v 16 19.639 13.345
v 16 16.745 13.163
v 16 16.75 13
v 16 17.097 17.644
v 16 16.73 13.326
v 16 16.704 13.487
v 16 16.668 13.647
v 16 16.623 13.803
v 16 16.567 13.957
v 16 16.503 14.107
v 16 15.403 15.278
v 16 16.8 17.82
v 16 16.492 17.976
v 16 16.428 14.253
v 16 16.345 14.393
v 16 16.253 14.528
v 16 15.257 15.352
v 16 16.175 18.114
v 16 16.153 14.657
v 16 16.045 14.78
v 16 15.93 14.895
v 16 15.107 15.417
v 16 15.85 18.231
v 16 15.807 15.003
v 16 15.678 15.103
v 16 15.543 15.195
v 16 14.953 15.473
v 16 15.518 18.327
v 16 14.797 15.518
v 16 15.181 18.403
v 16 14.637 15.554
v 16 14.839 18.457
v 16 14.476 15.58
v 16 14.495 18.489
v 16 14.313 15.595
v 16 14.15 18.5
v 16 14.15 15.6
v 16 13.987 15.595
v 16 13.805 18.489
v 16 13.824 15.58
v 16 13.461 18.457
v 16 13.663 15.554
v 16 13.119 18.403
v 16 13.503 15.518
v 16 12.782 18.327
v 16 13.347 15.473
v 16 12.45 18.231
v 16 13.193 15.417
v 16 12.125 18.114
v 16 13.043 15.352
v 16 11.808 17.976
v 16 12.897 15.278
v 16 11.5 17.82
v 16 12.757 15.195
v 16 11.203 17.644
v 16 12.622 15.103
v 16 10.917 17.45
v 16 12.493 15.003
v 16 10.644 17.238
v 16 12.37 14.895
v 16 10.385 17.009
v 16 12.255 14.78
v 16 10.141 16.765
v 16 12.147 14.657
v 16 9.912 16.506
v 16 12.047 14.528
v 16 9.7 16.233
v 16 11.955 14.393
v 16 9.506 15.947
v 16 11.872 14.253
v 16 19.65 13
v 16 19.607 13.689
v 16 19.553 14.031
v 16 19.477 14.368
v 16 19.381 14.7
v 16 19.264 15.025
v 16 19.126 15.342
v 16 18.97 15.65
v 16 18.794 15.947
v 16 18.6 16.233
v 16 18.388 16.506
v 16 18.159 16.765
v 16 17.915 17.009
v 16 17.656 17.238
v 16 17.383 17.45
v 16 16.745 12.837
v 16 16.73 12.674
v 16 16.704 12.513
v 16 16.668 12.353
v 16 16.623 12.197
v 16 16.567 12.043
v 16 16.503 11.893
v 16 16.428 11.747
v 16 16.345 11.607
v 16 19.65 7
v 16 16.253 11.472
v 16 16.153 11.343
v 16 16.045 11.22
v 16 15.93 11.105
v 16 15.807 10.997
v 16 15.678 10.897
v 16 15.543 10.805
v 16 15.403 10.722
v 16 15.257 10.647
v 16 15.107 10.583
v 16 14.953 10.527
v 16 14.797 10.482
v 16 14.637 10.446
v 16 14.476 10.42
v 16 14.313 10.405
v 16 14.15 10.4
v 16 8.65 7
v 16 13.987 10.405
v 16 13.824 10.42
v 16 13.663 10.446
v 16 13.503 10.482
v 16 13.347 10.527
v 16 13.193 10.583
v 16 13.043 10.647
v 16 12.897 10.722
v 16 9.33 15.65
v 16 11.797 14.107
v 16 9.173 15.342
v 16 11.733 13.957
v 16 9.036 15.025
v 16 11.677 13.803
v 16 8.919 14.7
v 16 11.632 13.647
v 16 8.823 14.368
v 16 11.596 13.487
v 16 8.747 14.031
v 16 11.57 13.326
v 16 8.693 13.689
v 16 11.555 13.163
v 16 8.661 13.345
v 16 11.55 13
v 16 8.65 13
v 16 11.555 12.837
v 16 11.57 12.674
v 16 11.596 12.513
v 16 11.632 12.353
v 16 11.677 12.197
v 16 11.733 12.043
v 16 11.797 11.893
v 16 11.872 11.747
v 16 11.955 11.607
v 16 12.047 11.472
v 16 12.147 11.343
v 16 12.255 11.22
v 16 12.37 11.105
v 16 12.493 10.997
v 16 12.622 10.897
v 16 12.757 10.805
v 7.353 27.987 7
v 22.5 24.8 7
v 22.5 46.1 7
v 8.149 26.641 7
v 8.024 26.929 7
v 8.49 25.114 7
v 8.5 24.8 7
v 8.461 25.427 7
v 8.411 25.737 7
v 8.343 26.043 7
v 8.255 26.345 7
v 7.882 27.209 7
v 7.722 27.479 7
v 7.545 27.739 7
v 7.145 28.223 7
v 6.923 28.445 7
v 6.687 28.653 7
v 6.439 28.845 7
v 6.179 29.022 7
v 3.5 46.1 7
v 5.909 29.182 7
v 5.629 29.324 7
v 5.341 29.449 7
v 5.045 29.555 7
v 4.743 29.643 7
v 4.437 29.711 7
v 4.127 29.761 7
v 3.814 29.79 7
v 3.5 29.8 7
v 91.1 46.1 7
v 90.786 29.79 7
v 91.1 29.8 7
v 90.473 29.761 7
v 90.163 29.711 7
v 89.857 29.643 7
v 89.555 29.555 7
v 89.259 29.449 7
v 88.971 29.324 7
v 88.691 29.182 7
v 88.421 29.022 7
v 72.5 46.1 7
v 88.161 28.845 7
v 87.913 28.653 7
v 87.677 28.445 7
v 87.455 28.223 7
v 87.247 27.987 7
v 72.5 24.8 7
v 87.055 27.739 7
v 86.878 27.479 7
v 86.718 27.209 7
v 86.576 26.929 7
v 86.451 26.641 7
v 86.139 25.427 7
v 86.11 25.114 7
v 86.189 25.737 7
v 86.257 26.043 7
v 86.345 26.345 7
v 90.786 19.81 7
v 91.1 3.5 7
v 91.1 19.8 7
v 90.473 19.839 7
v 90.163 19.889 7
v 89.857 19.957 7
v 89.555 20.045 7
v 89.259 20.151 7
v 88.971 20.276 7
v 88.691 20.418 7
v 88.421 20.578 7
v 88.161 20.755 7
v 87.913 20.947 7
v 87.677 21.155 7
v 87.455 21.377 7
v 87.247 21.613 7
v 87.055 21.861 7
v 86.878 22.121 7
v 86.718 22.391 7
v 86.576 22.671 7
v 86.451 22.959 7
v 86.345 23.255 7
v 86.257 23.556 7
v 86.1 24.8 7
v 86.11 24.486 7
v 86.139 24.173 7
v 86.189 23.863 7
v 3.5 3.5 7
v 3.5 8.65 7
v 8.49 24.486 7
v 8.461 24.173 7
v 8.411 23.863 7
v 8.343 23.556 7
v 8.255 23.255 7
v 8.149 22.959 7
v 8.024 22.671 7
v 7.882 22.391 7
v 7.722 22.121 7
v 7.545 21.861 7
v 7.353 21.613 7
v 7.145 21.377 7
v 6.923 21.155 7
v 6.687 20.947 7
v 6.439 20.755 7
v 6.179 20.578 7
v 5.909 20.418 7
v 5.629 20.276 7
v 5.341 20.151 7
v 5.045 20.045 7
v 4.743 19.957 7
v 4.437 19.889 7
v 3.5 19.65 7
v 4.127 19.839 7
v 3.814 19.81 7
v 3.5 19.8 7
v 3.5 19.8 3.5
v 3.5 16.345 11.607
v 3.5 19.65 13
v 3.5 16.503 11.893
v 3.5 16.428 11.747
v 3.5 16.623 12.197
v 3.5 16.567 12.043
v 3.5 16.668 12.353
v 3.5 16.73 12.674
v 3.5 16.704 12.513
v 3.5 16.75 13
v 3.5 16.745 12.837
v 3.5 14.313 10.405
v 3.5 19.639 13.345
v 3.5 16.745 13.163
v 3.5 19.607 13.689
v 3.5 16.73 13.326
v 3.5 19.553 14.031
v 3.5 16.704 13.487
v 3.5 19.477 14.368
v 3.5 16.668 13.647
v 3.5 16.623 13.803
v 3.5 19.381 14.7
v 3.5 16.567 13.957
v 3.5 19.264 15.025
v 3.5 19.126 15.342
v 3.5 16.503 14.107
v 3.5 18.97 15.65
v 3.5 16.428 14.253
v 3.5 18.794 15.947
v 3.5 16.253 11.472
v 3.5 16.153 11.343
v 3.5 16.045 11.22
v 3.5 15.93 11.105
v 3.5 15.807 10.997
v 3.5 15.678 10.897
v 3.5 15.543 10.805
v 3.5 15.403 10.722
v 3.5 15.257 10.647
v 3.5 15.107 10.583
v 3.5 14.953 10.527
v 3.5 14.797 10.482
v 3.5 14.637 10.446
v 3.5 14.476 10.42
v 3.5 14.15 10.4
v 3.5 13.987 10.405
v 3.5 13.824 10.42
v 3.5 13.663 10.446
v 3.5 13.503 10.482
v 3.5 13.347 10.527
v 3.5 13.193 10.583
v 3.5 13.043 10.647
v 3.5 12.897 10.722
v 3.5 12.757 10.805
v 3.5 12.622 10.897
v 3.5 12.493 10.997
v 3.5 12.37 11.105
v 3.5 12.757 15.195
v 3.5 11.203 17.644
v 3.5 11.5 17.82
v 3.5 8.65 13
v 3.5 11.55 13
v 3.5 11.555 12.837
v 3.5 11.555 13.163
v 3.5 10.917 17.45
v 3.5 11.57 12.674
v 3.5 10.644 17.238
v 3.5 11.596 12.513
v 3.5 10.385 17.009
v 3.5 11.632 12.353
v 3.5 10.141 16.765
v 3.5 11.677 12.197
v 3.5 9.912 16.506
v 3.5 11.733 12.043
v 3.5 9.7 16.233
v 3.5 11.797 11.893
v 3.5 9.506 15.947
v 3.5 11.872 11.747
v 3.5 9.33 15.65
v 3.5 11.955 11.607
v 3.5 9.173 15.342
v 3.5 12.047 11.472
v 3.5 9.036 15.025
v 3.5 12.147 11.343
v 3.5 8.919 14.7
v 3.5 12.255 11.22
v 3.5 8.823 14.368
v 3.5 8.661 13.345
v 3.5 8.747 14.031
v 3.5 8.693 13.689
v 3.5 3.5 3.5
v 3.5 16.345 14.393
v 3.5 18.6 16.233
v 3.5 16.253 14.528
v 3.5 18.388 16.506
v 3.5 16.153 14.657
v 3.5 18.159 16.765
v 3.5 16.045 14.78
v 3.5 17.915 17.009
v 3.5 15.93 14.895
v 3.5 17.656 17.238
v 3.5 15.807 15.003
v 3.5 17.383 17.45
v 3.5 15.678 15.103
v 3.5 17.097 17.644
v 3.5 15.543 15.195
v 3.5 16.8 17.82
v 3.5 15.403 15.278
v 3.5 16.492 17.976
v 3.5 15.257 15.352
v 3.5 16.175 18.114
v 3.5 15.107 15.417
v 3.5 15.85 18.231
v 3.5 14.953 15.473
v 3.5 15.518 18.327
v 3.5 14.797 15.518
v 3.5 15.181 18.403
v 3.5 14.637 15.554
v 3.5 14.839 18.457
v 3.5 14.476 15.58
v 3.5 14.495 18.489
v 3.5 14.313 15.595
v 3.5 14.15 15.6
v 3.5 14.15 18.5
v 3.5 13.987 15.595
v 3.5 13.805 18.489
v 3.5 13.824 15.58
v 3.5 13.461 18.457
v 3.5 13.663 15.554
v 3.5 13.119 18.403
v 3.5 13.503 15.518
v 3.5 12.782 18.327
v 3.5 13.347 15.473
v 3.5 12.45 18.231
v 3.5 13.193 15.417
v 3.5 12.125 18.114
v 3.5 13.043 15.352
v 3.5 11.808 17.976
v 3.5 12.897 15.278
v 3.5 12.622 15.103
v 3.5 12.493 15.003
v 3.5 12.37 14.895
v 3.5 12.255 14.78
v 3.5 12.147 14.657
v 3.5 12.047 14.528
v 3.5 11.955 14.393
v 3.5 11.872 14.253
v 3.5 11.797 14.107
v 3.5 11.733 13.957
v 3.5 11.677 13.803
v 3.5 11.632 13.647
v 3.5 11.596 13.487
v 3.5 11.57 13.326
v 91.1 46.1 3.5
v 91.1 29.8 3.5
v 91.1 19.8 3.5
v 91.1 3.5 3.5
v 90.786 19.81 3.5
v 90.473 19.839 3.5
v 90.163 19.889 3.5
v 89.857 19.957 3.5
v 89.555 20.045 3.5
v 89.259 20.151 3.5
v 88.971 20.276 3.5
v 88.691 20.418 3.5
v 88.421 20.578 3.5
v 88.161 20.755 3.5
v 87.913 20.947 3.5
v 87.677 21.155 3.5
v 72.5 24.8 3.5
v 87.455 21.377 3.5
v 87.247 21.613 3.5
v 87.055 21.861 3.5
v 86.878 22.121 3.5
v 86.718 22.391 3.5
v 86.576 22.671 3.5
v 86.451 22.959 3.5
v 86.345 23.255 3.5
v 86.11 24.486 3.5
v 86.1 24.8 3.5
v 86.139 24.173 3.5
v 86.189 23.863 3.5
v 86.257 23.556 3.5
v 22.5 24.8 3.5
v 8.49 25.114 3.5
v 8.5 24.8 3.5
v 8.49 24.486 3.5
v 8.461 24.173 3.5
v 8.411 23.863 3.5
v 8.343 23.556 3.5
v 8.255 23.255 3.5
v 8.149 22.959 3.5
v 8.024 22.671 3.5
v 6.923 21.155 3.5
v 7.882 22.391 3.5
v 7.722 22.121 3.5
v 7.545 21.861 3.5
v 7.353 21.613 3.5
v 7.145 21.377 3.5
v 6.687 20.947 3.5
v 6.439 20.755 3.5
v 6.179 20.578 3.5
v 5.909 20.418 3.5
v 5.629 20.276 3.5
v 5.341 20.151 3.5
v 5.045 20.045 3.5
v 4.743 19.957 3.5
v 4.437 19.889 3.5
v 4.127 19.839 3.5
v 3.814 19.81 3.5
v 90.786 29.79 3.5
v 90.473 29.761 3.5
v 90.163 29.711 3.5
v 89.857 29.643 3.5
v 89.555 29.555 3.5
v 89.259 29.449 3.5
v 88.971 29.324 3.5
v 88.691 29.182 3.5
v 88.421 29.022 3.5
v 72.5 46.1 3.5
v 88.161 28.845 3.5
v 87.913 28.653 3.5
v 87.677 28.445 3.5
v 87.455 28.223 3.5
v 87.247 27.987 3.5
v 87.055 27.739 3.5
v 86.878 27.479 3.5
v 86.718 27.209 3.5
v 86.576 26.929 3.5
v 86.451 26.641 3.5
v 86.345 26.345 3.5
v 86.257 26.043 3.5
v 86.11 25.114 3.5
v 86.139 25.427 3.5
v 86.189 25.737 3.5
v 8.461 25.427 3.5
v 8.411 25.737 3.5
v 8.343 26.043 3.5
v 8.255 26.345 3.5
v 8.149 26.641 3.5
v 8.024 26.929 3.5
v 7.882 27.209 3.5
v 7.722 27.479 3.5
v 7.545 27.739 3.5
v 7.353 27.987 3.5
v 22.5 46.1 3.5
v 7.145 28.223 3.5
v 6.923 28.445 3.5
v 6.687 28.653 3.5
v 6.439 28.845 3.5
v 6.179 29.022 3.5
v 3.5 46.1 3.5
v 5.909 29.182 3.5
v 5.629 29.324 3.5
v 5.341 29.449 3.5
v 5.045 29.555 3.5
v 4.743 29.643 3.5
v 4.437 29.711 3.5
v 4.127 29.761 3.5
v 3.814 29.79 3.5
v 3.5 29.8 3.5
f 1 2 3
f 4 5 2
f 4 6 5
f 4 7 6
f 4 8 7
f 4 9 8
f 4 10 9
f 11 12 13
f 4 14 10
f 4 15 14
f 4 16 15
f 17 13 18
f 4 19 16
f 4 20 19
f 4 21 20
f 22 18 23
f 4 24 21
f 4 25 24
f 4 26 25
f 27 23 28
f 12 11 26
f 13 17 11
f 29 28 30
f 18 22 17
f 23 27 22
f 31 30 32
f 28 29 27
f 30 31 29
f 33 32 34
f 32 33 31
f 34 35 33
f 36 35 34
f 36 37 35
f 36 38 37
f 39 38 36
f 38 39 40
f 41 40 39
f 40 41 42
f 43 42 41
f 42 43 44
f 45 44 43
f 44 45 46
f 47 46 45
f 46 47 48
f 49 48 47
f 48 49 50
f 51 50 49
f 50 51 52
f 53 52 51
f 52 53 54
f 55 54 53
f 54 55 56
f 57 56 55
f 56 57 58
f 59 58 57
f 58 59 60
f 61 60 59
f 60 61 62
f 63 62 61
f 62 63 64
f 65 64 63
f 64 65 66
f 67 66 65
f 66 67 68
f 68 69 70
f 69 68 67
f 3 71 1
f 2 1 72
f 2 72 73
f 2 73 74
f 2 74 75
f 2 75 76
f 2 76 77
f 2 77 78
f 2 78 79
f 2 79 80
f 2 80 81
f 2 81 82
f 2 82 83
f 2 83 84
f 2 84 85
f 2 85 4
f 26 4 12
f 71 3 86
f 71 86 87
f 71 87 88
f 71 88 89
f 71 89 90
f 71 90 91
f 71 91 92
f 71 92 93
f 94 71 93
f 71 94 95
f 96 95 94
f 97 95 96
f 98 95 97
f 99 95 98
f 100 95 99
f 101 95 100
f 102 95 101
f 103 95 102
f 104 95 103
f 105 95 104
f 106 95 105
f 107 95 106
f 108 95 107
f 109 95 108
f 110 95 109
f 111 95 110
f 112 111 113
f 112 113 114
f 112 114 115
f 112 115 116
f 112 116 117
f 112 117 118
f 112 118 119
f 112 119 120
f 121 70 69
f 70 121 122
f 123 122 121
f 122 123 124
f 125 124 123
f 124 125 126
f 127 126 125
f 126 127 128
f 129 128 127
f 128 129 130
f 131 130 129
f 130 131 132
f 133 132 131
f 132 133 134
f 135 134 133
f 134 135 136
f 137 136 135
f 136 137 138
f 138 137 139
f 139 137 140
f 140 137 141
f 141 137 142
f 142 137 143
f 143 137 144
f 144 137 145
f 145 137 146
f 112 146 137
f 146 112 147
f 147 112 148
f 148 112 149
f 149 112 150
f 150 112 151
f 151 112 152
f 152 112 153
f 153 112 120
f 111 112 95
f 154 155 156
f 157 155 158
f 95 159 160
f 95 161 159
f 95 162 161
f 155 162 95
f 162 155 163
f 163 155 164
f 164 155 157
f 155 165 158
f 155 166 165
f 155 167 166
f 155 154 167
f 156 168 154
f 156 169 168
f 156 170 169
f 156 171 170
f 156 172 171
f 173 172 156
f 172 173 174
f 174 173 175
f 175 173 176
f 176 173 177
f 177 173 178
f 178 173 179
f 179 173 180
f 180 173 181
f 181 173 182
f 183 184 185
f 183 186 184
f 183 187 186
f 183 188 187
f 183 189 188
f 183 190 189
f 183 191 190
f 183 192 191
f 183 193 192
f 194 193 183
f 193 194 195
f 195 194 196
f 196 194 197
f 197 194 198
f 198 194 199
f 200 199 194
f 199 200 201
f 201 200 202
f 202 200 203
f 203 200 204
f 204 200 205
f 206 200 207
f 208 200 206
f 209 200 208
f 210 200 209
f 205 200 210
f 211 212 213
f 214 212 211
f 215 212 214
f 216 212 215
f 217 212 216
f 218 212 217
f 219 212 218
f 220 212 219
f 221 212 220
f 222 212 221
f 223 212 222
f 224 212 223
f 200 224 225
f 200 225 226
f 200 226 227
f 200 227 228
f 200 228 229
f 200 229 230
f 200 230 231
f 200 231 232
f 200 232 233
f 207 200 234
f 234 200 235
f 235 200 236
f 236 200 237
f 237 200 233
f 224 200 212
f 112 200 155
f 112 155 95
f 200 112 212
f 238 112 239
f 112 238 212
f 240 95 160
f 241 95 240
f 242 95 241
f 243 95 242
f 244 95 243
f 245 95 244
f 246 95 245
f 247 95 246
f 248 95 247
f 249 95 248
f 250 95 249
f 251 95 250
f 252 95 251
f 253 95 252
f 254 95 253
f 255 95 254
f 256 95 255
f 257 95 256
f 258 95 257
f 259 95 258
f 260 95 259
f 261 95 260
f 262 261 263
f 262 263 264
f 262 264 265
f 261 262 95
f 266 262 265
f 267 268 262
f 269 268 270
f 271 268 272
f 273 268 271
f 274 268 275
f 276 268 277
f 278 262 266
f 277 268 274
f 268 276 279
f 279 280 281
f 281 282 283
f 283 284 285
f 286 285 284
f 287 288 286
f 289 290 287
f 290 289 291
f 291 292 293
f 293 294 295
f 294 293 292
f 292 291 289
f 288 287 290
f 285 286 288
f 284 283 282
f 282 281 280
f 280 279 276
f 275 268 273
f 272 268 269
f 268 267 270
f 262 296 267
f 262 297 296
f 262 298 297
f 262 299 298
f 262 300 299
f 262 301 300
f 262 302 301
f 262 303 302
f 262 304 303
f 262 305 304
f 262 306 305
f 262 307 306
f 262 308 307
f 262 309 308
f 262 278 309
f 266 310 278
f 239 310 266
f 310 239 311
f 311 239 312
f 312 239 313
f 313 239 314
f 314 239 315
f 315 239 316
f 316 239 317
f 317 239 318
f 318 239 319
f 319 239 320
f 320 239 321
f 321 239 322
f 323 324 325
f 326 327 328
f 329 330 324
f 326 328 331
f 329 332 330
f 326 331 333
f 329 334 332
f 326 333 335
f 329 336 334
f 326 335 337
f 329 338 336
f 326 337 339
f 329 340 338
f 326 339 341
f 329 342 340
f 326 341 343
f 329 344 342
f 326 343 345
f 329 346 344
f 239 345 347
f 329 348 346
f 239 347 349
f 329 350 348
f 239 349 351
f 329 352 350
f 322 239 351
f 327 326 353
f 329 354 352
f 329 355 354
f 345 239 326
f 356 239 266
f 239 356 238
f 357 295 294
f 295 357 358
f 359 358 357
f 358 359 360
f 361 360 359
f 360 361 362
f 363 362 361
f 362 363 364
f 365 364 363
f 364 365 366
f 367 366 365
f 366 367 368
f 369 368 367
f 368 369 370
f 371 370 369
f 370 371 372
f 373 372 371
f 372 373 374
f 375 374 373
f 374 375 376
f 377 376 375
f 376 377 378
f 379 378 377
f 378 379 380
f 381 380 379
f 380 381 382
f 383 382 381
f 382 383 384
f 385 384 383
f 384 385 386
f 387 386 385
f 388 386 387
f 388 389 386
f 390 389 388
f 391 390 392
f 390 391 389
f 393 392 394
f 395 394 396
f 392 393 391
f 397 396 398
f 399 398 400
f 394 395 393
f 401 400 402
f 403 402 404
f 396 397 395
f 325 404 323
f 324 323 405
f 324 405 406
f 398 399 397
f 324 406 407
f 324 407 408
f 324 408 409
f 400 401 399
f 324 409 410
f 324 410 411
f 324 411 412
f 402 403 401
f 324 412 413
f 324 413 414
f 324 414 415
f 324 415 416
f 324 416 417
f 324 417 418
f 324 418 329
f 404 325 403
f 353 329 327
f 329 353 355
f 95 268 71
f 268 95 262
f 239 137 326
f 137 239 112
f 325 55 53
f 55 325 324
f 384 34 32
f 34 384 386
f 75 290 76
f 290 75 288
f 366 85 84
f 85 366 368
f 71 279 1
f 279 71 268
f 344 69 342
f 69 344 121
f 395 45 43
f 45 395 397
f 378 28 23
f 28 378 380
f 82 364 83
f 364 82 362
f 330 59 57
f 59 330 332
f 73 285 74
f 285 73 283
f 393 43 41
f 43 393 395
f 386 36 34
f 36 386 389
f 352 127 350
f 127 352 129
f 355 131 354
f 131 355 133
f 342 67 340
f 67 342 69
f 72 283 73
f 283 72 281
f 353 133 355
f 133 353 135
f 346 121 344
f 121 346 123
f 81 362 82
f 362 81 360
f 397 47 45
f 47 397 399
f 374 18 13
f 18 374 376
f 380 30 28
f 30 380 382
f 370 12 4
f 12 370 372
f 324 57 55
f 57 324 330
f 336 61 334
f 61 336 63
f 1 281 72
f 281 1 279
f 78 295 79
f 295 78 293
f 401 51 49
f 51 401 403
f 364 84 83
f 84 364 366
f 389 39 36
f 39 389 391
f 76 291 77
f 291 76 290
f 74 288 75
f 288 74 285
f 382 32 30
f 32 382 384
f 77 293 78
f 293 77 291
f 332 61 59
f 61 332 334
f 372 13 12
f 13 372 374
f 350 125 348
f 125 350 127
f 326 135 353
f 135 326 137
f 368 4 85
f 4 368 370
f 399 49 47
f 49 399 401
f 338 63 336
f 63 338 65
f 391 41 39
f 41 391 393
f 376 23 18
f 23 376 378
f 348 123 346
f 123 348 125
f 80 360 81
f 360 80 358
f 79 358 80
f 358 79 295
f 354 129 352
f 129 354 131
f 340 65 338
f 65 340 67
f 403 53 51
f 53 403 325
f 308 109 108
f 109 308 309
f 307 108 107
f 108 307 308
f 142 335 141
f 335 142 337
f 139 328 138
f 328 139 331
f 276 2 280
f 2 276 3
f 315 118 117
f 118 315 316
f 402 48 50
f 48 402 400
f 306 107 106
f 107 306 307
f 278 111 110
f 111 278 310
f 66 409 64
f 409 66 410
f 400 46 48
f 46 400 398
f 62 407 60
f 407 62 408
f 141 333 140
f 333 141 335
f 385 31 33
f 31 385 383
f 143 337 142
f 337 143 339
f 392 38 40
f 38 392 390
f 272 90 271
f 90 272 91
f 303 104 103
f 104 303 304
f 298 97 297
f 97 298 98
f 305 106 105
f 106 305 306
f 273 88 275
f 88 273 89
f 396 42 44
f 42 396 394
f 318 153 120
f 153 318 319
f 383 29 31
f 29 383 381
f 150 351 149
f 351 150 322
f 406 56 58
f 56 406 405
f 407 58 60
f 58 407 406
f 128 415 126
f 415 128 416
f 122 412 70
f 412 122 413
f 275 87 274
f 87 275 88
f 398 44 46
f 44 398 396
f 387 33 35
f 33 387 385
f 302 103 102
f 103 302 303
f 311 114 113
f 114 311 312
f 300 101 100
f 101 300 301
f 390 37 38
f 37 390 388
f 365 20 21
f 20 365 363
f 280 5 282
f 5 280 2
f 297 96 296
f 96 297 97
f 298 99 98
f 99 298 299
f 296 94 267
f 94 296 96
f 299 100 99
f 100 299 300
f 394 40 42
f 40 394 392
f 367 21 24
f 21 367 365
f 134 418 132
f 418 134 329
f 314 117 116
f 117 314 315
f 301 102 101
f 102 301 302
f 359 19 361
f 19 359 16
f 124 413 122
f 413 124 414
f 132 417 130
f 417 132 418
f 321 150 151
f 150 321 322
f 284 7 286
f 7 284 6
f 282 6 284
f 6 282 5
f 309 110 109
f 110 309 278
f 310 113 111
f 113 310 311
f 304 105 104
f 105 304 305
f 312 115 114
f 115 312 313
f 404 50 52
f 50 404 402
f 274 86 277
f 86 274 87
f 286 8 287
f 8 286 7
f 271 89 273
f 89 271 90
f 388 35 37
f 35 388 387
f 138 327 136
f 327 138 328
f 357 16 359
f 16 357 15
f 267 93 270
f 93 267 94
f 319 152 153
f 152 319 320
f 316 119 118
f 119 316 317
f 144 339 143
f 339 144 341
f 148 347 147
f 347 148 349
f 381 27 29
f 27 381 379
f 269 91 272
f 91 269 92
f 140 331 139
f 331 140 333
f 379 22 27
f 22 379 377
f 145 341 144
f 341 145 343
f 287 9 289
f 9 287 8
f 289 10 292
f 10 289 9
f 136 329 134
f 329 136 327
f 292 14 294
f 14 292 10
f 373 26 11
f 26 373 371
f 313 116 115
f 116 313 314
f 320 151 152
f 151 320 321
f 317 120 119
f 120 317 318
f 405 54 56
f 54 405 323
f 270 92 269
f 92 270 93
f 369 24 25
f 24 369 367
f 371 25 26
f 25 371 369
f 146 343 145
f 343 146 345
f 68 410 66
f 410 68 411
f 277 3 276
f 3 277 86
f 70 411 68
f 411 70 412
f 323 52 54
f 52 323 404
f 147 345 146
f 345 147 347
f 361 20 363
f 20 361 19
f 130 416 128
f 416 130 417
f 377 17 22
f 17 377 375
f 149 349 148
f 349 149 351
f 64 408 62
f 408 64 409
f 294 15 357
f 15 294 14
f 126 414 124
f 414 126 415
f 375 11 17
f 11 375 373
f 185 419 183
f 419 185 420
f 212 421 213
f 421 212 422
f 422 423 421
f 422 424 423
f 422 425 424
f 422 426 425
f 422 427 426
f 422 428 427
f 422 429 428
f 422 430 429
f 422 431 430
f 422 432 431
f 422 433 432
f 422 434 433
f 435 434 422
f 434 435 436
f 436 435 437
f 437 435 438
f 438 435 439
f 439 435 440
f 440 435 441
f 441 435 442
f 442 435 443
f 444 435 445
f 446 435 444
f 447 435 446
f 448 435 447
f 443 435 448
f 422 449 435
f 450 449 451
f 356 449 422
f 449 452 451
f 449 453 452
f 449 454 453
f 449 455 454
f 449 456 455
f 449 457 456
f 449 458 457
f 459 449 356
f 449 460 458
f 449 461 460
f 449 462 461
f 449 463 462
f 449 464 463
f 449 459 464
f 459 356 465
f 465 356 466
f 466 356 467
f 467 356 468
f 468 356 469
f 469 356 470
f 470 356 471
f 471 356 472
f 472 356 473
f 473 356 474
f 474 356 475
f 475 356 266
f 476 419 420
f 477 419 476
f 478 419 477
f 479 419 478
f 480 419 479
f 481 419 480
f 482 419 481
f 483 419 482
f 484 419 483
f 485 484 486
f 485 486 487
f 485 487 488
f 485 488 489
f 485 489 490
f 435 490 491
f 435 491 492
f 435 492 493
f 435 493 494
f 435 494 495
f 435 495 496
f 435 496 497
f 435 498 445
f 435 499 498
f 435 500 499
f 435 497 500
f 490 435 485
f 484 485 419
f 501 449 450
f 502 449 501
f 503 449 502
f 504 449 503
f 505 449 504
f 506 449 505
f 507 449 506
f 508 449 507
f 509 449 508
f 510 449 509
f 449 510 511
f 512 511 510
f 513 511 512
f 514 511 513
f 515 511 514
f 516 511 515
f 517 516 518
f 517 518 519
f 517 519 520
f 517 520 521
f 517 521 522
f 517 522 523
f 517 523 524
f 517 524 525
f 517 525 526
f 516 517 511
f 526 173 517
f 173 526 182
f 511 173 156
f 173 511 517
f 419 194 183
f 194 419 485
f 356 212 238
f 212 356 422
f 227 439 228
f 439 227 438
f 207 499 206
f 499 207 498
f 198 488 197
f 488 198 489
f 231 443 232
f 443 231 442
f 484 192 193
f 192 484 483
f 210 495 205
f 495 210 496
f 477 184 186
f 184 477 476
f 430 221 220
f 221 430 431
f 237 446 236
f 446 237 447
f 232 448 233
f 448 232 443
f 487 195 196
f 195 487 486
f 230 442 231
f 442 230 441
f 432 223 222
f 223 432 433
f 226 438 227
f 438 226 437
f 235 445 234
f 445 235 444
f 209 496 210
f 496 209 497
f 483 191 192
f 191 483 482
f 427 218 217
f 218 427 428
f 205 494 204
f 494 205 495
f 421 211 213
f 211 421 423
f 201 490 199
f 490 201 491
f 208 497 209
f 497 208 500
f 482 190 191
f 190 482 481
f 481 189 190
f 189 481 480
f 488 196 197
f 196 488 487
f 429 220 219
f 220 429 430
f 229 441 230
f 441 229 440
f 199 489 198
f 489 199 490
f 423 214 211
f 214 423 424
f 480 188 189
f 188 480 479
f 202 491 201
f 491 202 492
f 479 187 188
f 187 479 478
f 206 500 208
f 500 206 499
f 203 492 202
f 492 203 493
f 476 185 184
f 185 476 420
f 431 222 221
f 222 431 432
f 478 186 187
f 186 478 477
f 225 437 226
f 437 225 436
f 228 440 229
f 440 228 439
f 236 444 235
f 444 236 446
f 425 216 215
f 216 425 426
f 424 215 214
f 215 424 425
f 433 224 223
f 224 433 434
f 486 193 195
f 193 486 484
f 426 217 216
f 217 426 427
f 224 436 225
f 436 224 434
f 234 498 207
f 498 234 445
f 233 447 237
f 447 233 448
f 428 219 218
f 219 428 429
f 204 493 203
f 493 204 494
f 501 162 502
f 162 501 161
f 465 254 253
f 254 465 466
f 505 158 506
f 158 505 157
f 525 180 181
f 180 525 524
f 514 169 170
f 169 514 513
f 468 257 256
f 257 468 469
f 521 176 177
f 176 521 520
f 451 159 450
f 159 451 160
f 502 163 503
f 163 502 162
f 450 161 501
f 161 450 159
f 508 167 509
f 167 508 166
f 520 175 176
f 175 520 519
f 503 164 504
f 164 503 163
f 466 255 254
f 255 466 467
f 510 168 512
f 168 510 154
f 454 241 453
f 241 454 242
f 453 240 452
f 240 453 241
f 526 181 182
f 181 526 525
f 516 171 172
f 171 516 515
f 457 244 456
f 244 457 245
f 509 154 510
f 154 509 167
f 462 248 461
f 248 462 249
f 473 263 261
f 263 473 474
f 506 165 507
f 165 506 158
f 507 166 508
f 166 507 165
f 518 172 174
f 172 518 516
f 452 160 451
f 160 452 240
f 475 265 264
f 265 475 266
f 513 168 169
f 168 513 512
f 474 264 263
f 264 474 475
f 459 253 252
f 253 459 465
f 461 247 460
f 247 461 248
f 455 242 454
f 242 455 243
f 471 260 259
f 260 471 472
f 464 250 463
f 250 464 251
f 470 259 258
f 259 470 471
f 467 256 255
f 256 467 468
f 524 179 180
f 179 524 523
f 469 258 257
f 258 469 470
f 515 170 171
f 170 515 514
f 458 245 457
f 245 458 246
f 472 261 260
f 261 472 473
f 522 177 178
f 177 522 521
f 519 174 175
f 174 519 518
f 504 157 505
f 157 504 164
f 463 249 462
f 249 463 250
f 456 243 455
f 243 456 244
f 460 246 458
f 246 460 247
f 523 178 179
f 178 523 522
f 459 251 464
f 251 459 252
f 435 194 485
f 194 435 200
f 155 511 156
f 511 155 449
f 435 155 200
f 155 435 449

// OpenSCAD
length = 43-.4;//52;
width = 88-.4;//86;
height = 32;
wall = 3.5;
o_width = width + wall + wall;
o_length = length + wall + wall;
o_height = height + wall;

resolution = 100;

$fn = resolution;

// outer box
standoff_id=3.45;
standoff_od=7;
standoff_od_wall_depth = wall-2;
standoff_width = 80.8;
standoff_length = 47.25;
//difference(){
    // main box
    //cube([o_width, o_length, o_height]);
    translate([wall, wall, 0]) {
        translate([0, 0, wall]) {
            // 9999 to take out the whole face
            difference(){
            cube([width, length, wall]);
                translate([width, length/2, 0]) {
                    cylinder(h=100, r=5);
                }
                translate([0, length/2, 0]) {
                    cylinder(h=100, r=5);
                }
                        translate([19, length/2, 0]) {

            cube([50, length/2, wall]);
                        }

            }
        }
    }
//}


//add the pin mechanism
pin_od = 11;
pin_id = 5.2;
pin_len = 16;
wall_offset = 6;
translate([wall, (1/4)*length+wall-pin_od/2, wall+wall]){
    difference() {
        union(){
            cube([pin_len-wall, pin_od, wall_offset]);
            rotate([0,90,0]) {
                translate([-wall_offset,pin_od/2,0]) {
                    cylinder(h=pin_len-wall, d=pin_od);
                }
            }
        }
        rotate([0,90,0]) {
            translate([-wall_offset,pin_od/2,0]) {
                cylinder(h=pin_len-wall, d=pin_id);   
            }
        }
    }
}
